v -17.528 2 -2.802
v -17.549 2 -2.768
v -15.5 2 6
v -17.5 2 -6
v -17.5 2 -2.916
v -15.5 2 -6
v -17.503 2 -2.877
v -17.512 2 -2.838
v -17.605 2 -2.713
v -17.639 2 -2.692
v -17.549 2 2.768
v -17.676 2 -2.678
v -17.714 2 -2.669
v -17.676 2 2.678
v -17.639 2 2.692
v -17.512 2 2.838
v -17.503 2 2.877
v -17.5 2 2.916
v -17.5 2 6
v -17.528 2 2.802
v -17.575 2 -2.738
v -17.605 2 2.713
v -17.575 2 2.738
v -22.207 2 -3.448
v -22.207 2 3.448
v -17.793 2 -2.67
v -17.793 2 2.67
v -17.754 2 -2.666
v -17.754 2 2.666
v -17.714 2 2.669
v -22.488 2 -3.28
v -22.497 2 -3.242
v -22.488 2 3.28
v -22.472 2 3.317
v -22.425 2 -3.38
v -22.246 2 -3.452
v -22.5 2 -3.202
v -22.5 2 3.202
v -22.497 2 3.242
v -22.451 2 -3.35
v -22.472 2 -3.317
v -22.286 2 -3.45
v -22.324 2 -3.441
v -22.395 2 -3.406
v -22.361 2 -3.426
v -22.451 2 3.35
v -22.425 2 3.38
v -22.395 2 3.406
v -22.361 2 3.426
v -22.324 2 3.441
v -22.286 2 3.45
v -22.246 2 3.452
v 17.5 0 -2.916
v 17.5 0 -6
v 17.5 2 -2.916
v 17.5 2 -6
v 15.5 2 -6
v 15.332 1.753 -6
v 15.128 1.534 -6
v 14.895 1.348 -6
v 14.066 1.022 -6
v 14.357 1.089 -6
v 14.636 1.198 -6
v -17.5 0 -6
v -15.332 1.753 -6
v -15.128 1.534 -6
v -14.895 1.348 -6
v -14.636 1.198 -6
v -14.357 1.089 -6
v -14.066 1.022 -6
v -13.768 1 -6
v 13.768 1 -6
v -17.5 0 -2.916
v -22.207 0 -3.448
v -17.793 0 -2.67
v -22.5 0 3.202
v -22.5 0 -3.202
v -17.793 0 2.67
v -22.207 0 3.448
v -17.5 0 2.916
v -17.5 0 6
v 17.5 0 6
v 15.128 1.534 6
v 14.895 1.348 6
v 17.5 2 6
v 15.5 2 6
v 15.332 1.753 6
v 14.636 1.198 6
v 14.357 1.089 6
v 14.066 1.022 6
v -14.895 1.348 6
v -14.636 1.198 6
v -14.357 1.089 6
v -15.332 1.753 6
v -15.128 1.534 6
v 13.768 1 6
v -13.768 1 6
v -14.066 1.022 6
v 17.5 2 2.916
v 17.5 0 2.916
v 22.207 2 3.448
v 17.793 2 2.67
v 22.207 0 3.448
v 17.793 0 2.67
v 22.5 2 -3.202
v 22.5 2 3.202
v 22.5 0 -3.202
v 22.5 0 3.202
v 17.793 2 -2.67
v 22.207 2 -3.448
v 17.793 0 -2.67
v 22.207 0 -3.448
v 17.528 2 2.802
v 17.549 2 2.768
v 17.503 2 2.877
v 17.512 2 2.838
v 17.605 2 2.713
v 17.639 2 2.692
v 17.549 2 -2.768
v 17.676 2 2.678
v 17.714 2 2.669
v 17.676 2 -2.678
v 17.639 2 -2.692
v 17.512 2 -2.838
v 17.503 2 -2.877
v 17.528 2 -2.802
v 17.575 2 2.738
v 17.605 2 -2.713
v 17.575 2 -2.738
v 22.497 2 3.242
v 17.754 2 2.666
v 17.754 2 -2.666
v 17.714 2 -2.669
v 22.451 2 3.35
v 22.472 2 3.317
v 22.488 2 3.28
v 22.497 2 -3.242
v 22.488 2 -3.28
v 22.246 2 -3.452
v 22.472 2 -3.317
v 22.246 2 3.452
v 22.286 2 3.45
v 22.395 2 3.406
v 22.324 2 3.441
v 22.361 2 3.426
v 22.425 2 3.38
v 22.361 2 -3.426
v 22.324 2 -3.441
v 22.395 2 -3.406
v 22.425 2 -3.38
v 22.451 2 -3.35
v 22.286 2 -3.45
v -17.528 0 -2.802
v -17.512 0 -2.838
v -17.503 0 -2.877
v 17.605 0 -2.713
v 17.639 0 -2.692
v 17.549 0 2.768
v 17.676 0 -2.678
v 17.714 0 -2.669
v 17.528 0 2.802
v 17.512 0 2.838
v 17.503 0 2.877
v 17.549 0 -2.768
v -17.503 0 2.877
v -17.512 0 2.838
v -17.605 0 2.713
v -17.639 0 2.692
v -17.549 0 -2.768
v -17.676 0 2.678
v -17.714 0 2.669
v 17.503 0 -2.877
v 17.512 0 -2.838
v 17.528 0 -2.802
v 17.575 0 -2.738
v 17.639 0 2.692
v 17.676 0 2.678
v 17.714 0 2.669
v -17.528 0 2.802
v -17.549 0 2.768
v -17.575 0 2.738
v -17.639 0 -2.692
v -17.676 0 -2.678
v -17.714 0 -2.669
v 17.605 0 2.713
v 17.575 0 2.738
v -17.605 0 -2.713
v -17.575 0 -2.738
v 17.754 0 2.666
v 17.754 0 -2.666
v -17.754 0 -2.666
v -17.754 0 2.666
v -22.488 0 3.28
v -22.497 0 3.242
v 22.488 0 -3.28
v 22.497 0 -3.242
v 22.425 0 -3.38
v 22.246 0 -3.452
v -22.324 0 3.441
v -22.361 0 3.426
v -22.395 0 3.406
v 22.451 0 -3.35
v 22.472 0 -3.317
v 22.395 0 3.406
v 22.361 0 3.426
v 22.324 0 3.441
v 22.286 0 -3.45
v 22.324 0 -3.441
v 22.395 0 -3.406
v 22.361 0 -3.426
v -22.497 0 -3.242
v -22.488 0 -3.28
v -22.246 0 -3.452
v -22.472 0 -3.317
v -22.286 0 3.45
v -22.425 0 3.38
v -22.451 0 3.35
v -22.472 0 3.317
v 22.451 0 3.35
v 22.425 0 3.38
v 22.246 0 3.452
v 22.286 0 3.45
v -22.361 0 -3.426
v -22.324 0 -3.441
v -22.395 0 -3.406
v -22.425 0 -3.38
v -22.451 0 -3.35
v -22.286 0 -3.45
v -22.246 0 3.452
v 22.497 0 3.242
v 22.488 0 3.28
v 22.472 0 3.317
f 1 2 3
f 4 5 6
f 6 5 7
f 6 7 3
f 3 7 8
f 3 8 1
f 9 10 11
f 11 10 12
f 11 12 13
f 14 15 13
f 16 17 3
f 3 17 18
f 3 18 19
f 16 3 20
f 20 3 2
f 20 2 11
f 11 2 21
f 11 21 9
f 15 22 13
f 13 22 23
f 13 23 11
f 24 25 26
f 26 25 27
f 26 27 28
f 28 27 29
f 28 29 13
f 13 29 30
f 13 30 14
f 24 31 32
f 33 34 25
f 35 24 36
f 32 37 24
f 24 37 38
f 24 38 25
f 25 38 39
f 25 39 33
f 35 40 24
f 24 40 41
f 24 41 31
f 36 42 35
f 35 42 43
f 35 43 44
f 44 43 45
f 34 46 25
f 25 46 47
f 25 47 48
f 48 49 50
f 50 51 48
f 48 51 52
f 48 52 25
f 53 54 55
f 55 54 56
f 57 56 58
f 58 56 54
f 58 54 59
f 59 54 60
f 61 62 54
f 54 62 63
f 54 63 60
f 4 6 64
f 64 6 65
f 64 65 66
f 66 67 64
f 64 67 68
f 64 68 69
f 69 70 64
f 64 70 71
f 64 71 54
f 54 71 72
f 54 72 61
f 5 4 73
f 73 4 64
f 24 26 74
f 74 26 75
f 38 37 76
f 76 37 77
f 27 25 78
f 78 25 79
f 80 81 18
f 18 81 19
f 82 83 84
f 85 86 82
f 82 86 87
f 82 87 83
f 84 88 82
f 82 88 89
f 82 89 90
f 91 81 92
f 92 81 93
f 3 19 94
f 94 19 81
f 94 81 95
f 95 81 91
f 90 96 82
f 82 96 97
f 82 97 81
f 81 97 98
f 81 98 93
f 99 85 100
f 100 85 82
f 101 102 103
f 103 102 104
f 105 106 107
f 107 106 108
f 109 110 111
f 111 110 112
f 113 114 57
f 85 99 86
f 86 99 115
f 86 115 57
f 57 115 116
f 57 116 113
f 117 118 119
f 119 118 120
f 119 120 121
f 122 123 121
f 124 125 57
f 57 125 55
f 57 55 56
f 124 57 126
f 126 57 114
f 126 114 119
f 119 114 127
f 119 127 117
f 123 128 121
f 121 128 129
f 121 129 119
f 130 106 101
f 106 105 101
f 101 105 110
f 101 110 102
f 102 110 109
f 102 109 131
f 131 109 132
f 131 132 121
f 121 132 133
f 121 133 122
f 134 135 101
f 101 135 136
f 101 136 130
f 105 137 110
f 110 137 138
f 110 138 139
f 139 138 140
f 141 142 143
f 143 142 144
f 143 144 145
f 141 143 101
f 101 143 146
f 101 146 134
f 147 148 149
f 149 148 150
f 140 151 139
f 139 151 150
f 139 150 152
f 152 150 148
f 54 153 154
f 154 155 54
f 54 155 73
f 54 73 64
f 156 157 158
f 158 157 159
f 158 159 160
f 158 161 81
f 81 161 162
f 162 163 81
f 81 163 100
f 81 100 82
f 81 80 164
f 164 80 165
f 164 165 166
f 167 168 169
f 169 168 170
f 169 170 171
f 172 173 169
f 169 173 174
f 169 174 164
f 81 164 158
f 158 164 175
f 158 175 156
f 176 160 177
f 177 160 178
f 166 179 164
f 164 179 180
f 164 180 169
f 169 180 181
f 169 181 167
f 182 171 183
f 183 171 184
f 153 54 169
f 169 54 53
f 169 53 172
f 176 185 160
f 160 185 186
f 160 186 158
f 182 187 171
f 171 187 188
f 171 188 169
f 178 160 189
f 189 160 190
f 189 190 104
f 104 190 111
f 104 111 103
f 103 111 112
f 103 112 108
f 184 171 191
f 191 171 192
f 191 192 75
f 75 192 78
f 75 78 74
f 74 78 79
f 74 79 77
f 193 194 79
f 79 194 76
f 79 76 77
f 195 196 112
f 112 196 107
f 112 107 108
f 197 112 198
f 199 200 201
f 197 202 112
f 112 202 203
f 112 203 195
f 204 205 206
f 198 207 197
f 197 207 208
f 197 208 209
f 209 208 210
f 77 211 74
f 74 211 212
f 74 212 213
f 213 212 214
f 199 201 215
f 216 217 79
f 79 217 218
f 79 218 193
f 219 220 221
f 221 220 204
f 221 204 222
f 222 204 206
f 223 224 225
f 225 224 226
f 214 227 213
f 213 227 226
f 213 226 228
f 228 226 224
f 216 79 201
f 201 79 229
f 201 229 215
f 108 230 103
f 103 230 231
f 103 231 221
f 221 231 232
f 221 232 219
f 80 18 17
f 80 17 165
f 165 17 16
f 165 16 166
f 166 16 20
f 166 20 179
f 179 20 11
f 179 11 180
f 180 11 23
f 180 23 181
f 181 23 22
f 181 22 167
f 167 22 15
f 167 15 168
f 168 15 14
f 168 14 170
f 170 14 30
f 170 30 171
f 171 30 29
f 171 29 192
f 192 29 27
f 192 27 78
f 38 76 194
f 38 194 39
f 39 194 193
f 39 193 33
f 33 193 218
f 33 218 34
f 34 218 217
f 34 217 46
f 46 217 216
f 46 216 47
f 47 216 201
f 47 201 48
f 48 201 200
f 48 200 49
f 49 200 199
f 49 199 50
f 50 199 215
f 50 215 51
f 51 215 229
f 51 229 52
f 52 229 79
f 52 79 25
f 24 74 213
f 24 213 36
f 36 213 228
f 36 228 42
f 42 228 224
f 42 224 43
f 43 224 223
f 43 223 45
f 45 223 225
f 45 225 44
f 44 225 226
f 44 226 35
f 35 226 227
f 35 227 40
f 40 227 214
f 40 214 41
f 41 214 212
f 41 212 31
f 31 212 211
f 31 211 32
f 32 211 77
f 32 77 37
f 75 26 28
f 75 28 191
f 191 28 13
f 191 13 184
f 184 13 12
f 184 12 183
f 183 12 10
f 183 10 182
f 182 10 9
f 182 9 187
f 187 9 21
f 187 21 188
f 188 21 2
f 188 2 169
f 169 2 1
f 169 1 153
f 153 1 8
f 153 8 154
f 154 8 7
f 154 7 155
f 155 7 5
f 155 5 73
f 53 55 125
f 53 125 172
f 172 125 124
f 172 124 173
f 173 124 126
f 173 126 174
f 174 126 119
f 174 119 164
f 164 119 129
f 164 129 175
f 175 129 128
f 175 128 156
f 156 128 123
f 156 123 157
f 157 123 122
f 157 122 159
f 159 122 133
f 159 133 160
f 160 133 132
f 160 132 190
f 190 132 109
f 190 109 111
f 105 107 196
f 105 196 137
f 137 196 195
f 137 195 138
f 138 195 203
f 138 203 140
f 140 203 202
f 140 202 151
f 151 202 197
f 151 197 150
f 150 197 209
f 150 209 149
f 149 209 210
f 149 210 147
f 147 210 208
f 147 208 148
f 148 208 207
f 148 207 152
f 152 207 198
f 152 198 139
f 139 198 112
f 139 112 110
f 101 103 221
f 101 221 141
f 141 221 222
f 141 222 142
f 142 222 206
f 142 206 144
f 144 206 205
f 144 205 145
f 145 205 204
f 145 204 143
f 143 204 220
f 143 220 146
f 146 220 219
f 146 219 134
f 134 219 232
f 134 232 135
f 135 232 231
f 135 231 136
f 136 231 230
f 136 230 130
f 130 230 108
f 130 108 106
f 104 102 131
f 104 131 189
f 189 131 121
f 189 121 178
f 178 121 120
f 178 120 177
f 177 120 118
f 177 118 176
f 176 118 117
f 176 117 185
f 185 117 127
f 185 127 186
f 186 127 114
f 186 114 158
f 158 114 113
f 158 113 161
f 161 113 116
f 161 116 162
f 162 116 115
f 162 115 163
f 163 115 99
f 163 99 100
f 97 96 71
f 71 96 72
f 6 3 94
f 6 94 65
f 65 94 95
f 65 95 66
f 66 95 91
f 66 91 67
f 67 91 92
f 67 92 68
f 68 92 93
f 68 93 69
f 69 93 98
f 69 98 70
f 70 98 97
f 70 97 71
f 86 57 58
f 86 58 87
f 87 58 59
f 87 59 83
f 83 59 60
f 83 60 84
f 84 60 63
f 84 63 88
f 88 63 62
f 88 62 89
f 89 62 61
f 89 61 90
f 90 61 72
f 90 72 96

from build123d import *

# Parameters (mm, degrees)
BOSS_EXTRUDE1_DEPTH = 2
FILLET1_R           = 0.25
SKETCH3_W           = 31
SKETCH3_H           = 12
CUT_EXTRUDE2_DEPTH  = 1
FILLET6_R           = 2


with BuildPart() as part:
    # Sketch1 → Boss-Extrude1 (new body)
    with BuildSketch(Plane(origin=(0, 0, 0), x_dir=(1, 0, 0), z_dir=(0, 1, 0))):
        Polygon((-17.5, 2.618365096), (-22.5, 3.5), (-22.5, -3.5), (-17.5, -2.618365096), (-17.5, -6), (17.5, -6), (17.5, -2.618365096), (22.5, -3.5), (22.5, 3.5), (17.5, 2.618365096), (17.5, 6), (-17.5, 6), align=None)
    extrude(amount=BOSS_EXTRUDE1_DEPTH)

    # Fillet1
    fillet1_edges = [part.edges().sort_by_distance(p)[0] for p in [
        (17.5, 1, -2.618365096),
        (22.5, 1, -3.5),
        (22.5, 1, 3.5),
        (17.5, 1, 2.618365096),
        (-17.5, 1, 2.618365096),
        (-22.5, 1, 3.5),
        (-22.5, 1, -3.5),
        (-17.5, 1, -2.618365096),
    ]]
    fillet(fillet1_edges, radius=FILLET1_R)

    # Sketch3 → Cut-Extrude2 (cut)
    with BuildSketch(Plane(origin=(0, 2, 0), x_dir=(1, 0, 0), z_dir=(0, 1, 0))):
        Rectangle(SKETCH3_W, SKETCH3_H)
    extrude(amount=-CUT_EXTRUDE2_DEPTH, mode=Mode.SUBTRACT)

    # Fillet6
    # the kernel refuses this fillet: 2 mm, written as the material it adds along each edge
    with BuildSketch(Plane(origin=(-15.5, 1, 6), x_dir=(0, 1, 0), z_dir=(0, 0, -1))) as fillet6_piece_1:
        with BuildLine():
            CenterArc((2, 1.732050808), FILLET6_R, 180, 60)
            Line((0, 1.732050808), (-0.04, 1.732050808))
            Line((-0.04, 1.732050808), (-0.04, 0))
            Line((-0.04, 0), (0, -0.04))
            ThreePointArc((0, -0.04), (0.5, -0.04), (0.98, -0.034641016))
            Line((0.98, -0.034641016), (1, 0))
        make_face()
    extrude(amount=12)
    with BuildSketch(Plane(origin=(15.5, 1, -6), x_dir=(-1, 0, 0), z_dir=(0, 0, 1))) as fillet6_piece_2:
        with BuildLine():
            CenterArc((1.732050808, -2), FILLET6_R, 90, 60)
            Line((0, -1), (-0.034641016, -0.98))
            ThreePointArc((-0.034641016, -0.98), (-0.04, -0.5), (-0.04, 0))
            Line((-0.04, 0), (0, 0.04))
            Line((0, 0.04), (1.732050808, 0.04))
            Line((1.732050808, 0.04), (1.732050808, 0))
        make_face()
    extrude(amount=12)


solid = part.part
